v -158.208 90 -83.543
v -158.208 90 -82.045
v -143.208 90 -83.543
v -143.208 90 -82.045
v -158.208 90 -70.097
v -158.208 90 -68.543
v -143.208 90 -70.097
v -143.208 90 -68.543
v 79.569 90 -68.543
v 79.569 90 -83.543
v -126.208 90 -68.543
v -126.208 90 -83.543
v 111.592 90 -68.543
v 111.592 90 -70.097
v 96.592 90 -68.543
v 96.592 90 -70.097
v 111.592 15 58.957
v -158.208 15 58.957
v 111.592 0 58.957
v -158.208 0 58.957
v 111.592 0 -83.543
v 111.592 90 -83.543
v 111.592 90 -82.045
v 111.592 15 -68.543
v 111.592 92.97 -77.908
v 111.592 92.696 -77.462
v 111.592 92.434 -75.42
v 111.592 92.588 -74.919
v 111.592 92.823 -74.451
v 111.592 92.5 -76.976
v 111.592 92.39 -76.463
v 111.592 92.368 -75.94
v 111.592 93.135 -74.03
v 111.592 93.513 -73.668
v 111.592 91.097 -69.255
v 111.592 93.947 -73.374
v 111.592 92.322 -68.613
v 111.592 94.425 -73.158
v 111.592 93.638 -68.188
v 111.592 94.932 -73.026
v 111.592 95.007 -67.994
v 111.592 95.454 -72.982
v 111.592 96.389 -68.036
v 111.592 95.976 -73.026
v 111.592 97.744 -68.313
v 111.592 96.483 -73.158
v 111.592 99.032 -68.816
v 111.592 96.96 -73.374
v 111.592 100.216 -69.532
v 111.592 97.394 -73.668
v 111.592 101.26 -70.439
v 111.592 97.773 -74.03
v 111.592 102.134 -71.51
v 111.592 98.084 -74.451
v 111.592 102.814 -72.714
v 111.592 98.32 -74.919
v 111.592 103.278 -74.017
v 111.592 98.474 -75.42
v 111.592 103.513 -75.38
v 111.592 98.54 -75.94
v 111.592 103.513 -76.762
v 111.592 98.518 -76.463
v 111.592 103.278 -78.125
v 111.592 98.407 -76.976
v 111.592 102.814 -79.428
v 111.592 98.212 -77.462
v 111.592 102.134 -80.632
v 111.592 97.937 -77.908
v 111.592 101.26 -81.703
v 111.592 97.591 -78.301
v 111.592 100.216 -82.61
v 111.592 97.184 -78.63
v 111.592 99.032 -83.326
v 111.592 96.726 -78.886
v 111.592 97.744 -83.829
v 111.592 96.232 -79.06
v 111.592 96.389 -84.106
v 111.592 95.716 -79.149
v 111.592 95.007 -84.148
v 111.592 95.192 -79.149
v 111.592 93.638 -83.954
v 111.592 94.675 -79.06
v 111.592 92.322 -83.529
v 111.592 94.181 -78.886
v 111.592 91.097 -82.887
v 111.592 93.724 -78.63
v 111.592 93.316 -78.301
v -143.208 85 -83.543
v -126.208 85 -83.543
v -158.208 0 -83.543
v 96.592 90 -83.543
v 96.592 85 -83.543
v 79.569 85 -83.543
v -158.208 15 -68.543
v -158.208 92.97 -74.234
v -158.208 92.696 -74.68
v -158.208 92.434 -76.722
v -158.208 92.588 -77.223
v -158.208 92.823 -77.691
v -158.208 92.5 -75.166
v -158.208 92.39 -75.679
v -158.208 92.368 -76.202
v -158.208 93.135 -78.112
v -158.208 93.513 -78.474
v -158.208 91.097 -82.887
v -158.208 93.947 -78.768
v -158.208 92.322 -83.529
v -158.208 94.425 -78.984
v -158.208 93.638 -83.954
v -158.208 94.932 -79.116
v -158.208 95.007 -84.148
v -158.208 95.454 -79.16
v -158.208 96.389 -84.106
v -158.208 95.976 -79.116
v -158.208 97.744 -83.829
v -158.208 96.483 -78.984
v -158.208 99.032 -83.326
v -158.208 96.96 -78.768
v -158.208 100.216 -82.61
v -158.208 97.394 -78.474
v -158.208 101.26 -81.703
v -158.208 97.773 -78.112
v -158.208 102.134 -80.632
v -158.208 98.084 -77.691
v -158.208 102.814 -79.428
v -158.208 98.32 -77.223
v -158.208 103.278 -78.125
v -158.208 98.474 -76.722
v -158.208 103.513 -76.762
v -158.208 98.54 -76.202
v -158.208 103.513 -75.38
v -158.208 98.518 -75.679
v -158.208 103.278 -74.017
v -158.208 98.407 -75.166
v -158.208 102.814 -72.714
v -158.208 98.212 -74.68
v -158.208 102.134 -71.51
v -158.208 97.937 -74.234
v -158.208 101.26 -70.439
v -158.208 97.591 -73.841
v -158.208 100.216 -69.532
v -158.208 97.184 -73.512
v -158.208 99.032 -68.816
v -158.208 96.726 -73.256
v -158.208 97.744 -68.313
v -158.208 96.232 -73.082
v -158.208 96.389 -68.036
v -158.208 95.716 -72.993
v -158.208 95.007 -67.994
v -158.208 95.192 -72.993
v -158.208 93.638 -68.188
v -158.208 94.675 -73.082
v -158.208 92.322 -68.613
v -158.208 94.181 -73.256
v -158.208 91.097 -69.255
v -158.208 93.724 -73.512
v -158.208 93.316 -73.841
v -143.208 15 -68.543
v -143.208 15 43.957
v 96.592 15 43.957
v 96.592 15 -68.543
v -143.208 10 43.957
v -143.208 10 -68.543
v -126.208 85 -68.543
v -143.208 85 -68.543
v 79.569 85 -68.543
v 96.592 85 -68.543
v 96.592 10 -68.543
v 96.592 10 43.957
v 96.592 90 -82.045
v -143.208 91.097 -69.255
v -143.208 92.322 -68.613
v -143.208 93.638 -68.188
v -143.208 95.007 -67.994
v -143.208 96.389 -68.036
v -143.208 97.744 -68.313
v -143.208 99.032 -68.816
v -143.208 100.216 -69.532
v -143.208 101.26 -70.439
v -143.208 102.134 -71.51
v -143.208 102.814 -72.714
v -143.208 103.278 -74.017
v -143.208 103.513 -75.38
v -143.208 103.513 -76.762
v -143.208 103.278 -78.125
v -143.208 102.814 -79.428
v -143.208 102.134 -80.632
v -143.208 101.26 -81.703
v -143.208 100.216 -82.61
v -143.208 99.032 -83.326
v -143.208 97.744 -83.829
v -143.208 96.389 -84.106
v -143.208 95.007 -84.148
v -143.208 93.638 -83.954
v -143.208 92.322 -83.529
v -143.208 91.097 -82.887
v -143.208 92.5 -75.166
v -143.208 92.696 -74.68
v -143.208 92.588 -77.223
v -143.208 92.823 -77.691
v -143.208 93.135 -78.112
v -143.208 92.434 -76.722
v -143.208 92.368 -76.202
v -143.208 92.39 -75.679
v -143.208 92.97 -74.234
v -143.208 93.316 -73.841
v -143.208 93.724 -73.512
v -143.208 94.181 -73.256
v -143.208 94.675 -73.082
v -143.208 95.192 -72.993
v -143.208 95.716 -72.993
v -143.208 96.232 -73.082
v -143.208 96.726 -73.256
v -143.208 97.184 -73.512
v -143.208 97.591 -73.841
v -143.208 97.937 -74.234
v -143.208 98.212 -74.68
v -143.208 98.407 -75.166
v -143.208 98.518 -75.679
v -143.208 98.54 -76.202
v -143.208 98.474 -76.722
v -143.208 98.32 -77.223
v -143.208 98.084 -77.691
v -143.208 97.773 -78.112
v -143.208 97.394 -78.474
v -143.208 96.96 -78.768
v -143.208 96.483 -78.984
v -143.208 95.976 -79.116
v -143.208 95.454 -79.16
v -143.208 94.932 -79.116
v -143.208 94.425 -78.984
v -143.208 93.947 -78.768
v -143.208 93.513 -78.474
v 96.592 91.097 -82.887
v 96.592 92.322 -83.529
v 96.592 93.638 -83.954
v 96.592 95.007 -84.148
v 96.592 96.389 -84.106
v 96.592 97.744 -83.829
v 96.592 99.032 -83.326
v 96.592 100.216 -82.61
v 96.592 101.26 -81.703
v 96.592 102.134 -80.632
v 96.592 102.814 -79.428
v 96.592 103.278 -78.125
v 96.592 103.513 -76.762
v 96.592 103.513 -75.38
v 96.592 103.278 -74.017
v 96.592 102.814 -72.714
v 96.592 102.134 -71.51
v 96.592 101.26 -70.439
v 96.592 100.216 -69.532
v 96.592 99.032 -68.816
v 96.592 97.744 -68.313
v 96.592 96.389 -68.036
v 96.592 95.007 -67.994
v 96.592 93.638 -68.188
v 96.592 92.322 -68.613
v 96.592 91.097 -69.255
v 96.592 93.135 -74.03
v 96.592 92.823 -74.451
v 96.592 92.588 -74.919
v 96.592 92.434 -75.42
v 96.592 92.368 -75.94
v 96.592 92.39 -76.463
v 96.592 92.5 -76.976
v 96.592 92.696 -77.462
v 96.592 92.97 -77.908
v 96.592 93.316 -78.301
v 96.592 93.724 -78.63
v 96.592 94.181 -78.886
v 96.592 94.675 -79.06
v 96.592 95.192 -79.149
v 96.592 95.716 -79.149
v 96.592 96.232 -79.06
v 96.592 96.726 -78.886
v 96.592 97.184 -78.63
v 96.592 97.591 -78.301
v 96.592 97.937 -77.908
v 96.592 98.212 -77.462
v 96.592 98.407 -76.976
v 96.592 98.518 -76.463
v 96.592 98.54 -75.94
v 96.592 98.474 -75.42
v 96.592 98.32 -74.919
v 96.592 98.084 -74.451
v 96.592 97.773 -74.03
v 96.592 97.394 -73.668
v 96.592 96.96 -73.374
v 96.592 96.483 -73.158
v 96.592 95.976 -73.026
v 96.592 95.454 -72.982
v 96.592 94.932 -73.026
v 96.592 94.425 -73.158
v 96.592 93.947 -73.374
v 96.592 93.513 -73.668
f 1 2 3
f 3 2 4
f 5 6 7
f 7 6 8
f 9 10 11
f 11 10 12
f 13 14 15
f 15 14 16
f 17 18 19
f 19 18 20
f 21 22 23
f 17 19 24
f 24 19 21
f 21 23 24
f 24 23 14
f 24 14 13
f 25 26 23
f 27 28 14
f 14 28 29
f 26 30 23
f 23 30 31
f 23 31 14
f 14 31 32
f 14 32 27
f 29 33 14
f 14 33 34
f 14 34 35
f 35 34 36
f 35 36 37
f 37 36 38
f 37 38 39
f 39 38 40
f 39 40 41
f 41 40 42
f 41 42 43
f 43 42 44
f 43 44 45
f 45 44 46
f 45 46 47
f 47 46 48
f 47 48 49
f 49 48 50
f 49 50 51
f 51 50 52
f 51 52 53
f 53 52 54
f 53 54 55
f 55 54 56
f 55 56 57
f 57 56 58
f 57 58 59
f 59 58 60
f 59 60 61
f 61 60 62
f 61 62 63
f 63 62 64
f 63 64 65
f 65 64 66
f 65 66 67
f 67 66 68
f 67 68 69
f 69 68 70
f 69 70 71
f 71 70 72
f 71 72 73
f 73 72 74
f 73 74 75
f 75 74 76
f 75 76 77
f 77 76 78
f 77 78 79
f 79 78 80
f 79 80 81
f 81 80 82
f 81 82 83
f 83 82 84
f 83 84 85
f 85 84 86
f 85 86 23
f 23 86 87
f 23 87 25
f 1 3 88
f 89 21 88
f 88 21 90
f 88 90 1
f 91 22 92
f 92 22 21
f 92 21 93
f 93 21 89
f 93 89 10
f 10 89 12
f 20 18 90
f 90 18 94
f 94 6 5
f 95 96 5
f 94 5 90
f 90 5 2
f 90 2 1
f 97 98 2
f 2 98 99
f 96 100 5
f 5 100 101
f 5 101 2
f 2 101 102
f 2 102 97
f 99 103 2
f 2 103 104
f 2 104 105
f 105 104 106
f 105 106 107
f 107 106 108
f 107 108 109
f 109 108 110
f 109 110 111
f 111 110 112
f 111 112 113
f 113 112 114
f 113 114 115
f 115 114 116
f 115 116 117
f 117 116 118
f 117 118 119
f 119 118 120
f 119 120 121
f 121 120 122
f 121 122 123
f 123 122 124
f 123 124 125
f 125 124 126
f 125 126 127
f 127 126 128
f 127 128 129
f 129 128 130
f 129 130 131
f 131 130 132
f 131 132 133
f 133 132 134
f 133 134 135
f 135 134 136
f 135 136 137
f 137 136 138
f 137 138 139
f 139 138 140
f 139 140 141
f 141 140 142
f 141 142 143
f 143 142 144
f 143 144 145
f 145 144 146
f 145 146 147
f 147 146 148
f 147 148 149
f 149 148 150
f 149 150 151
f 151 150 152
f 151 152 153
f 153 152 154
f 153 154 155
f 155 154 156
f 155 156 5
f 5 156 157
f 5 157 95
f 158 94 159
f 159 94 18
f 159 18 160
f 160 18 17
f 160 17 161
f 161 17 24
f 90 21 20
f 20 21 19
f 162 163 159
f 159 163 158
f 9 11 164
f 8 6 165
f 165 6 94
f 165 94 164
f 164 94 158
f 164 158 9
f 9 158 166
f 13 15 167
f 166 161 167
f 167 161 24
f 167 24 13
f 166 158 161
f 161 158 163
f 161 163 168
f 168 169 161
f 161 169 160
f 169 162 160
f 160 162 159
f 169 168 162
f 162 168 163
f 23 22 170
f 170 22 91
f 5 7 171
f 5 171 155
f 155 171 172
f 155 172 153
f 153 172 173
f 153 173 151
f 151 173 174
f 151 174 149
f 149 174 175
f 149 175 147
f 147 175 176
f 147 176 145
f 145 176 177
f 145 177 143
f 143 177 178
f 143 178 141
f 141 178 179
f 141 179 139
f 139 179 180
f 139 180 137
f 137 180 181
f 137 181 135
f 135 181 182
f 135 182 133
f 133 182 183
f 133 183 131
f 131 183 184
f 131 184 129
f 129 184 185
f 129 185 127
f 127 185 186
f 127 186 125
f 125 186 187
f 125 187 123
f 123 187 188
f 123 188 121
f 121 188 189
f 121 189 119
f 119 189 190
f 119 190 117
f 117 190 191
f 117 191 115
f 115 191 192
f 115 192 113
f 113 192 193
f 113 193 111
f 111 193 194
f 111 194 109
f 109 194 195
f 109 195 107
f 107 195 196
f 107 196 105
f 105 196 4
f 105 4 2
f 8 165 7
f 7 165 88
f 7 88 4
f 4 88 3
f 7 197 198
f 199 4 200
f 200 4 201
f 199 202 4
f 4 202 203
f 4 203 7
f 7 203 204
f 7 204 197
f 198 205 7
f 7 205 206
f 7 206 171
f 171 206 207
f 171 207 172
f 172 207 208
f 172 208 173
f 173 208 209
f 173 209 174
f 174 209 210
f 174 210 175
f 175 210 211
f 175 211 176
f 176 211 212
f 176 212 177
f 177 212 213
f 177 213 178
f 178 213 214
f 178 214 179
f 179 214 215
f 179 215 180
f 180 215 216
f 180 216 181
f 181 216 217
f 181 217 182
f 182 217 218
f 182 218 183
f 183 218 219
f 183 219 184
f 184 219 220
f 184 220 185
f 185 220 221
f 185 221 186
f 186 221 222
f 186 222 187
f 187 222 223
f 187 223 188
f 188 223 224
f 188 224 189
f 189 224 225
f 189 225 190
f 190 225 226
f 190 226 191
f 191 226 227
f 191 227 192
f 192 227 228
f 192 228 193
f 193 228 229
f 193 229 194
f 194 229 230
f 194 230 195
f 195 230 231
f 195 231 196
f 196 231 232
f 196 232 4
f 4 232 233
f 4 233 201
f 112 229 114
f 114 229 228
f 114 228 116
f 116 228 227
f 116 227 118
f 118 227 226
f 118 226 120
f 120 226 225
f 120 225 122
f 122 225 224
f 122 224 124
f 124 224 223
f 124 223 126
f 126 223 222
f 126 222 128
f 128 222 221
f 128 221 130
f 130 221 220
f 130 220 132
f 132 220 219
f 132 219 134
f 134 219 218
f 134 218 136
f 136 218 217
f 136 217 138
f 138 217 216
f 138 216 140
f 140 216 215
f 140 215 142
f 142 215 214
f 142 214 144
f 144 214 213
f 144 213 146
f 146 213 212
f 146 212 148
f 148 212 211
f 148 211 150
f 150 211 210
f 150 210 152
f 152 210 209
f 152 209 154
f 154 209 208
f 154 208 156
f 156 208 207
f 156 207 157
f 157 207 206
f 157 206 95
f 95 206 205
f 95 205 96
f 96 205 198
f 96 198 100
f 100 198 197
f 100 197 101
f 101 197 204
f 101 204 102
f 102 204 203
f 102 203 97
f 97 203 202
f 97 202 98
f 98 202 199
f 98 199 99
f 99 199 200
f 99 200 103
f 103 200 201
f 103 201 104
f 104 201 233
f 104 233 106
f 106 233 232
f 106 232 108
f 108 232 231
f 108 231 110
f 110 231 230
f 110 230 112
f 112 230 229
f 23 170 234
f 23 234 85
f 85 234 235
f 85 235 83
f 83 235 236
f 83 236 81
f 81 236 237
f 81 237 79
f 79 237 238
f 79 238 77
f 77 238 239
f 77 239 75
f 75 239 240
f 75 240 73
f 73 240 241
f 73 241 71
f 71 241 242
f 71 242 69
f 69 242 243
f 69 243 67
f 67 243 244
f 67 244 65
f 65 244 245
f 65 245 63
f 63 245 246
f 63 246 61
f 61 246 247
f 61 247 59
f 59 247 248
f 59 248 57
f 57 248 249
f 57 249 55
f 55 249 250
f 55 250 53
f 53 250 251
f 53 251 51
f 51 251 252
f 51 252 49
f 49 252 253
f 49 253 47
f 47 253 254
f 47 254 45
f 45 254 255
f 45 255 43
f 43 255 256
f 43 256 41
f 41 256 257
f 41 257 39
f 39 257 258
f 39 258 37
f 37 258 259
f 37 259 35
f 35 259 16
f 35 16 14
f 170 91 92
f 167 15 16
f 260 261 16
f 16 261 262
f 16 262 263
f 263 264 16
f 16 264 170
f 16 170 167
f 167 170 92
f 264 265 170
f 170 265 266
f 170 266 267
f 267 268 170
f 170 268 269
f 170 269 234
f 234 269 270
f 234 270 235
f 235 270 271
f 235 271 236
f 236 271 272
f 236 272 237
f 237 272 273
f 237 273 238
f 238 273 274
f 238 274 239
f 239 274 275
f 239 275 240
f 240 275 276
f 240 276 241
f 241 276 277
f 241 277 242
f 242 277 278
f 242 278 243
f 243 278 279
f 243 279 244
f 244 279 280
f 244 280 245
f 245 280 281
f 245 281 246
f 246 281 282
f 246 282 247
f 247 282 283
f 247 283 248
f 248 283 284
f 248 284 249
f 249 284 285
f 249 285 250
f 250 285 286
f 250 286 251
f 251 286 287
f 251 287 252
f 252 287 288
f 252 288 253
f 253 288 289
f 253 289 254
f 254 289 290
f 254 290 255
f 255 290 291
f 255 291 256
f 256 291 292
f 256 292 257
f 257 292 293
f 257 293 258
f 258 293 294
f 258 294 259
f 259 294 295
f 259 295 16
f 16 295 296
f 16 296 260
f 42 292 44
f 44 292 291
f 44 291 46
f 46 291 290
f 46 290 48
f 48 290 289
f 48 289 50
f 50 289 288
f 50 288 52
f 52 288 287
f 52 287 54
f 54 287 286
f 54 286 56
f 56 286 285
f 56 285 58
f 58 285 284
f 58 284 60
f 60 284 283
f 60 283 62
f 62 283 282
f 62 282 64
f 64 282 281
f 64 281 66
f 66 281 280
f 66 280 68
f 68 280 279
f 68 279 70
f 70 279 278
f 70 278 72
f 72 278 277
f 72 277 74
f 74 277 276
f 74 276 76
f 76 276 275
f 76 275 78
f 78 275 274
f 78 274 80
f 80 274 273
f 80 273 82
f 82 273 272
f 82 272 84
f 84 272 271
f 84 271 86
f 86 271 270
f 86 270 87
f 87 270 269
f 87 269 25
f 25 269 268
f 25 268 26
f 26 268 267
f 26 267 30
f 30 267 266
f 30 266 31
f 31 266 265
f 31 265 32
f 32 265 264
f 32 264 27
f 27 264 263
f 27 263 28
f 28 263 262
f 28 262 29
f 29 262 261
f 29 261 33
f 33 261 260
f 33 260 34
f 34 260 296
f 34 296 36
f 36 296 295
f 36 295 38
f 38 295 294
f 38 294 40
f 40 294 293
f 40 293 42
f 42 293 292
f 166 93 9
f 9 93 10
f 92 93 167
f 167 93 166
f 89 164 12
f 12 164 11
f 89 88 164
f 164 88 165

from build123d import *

# Parameters (mm, degrees)
SKETCH1_W           = 269.8
SKETCH1_H           = 142.5
BOSS_EXTRUDE2_DEPTH = 15
SKETCH2_W           = 239.8
SKETCH2_H           = 112.5
CUT_EXTRUDE1_DEPTH  = 5
BOSS_EXTRUDE3_DEPTH = 75
SKETCH7_R           = 8.089056034
SKETCH7_R_2         = 3.089056034
BOSS_EXTRUDE4_DEPTH = 15
SKETCH12_R          = 8.089056034
SKETCH12_R_2        = 3.089056034
BOSS_EXTRUDE5_DEPTH = 15
SKETCH14_W          = 17.02273013
SKETCH14_H          = 15
CUT_EXTRUDE2_DEPTH  = 5


with BuildPart() as part:
    # Sketch1 → Boss-Extrude2 (new body)
    with BuildSketch(Plane(origin=(0, 0, 0), x_dir=(1, 0, 0), z_dir=(0, 1, 0))):
        with Locations((-23.308401977, 12.292504119)):
            Rectangle(SKETCH1_W, SKETCH1_H)
    extrude(amount=BOSS_EXTRUDE2_DEPTH)

    # Sketch2 → Cut-Extrude1 (cut)
    with BuildSketch(Plane(origin=(0, 15, 0), x_dir=(1, 0, 0), z_dir=(0, 1, 0))):
        with Locations((-23.308401977, 12.292504119)):
            Rectangle(SKETCH2_W, SKETCH2_H)
    extrude(amount=-CUT_EXTRUDE1_DEPTH, mode=Mode.SUBTRACT)

    # Sketch3 → Boss-Extrude3 (add)
    with BuildSketch(Plane(origin=(0, 15, 0), x_dir=(1, 0, 0), z_dir=(0, 1, 0))):
        Polygon((-143.208401977, 68.542504119), (-158.208401977, 68.542504119), (-158.208401977, 83.542504119), (111.591598023, 83.542504119), (111.591598023, 68.542504119), align=None)
    extrude(amount=BOSS_EXTRUDE3_DEPTH)

    # Sketch7 → Boss-Extrude4 (add)
    with BuildSketch(Plane(origin=(-143.208401977, 0, 0), x_dir=(0, 0, -1), z_dir=(1, 0, 0))):
        with Locations((76.070987498, 95.45383679)):
            Circle(SKETCH7_R)
        with Locations((76.070987498, 95.45383679)):
            Circle(SKETCH7_R_2, mode=Mode.SUBTRACT)
    extrude(amount=-BOSS_EXTRUDE4_DEPTH)

    # Sketch12 → Boss-Extrude5 (add)
    with BuildSketch(Plane.ZY.offset(-96.591598023)):
        with Locations((-76.070987498, 95.45383679)):
            Circle(SKETCH12_R)
        with Locations((-76.070987498, 95.45383679)):
            Circle(SKETCH12_R_2, mode=Mode.SUBTRACT)
    extrude(amount=-BOSS_EXTRUDE5_DEPTH)

    # Sketch14 → Cut-Extrude2 (cut)
    with BuildSketch(Plane(origin=(0, 90, 0), x_dir=(1, 0, 0), z_dir=(0, 1, 0))):
        Polygon((-126.208401977, 83.542504119), (-128.208401977, 83.542504119), (-143.208401977, 83.542504119), (-143.208401977, 82.044972081), (-143.208401977, 70.097002915), (-143.208401977, 68.542504119), (-128.208401977, 68.542504119), (-126.208401977, 68.542504119), align=None)
        with Locations((88.080232958, 76.042504119)):
            Rectangle(SKETCH14_W, SKETCH14_H)
    extrude(amount=-CUT_EXTRUDE2_DEPTH, mode=Mode.SUBTRACT)


solid = part.part
